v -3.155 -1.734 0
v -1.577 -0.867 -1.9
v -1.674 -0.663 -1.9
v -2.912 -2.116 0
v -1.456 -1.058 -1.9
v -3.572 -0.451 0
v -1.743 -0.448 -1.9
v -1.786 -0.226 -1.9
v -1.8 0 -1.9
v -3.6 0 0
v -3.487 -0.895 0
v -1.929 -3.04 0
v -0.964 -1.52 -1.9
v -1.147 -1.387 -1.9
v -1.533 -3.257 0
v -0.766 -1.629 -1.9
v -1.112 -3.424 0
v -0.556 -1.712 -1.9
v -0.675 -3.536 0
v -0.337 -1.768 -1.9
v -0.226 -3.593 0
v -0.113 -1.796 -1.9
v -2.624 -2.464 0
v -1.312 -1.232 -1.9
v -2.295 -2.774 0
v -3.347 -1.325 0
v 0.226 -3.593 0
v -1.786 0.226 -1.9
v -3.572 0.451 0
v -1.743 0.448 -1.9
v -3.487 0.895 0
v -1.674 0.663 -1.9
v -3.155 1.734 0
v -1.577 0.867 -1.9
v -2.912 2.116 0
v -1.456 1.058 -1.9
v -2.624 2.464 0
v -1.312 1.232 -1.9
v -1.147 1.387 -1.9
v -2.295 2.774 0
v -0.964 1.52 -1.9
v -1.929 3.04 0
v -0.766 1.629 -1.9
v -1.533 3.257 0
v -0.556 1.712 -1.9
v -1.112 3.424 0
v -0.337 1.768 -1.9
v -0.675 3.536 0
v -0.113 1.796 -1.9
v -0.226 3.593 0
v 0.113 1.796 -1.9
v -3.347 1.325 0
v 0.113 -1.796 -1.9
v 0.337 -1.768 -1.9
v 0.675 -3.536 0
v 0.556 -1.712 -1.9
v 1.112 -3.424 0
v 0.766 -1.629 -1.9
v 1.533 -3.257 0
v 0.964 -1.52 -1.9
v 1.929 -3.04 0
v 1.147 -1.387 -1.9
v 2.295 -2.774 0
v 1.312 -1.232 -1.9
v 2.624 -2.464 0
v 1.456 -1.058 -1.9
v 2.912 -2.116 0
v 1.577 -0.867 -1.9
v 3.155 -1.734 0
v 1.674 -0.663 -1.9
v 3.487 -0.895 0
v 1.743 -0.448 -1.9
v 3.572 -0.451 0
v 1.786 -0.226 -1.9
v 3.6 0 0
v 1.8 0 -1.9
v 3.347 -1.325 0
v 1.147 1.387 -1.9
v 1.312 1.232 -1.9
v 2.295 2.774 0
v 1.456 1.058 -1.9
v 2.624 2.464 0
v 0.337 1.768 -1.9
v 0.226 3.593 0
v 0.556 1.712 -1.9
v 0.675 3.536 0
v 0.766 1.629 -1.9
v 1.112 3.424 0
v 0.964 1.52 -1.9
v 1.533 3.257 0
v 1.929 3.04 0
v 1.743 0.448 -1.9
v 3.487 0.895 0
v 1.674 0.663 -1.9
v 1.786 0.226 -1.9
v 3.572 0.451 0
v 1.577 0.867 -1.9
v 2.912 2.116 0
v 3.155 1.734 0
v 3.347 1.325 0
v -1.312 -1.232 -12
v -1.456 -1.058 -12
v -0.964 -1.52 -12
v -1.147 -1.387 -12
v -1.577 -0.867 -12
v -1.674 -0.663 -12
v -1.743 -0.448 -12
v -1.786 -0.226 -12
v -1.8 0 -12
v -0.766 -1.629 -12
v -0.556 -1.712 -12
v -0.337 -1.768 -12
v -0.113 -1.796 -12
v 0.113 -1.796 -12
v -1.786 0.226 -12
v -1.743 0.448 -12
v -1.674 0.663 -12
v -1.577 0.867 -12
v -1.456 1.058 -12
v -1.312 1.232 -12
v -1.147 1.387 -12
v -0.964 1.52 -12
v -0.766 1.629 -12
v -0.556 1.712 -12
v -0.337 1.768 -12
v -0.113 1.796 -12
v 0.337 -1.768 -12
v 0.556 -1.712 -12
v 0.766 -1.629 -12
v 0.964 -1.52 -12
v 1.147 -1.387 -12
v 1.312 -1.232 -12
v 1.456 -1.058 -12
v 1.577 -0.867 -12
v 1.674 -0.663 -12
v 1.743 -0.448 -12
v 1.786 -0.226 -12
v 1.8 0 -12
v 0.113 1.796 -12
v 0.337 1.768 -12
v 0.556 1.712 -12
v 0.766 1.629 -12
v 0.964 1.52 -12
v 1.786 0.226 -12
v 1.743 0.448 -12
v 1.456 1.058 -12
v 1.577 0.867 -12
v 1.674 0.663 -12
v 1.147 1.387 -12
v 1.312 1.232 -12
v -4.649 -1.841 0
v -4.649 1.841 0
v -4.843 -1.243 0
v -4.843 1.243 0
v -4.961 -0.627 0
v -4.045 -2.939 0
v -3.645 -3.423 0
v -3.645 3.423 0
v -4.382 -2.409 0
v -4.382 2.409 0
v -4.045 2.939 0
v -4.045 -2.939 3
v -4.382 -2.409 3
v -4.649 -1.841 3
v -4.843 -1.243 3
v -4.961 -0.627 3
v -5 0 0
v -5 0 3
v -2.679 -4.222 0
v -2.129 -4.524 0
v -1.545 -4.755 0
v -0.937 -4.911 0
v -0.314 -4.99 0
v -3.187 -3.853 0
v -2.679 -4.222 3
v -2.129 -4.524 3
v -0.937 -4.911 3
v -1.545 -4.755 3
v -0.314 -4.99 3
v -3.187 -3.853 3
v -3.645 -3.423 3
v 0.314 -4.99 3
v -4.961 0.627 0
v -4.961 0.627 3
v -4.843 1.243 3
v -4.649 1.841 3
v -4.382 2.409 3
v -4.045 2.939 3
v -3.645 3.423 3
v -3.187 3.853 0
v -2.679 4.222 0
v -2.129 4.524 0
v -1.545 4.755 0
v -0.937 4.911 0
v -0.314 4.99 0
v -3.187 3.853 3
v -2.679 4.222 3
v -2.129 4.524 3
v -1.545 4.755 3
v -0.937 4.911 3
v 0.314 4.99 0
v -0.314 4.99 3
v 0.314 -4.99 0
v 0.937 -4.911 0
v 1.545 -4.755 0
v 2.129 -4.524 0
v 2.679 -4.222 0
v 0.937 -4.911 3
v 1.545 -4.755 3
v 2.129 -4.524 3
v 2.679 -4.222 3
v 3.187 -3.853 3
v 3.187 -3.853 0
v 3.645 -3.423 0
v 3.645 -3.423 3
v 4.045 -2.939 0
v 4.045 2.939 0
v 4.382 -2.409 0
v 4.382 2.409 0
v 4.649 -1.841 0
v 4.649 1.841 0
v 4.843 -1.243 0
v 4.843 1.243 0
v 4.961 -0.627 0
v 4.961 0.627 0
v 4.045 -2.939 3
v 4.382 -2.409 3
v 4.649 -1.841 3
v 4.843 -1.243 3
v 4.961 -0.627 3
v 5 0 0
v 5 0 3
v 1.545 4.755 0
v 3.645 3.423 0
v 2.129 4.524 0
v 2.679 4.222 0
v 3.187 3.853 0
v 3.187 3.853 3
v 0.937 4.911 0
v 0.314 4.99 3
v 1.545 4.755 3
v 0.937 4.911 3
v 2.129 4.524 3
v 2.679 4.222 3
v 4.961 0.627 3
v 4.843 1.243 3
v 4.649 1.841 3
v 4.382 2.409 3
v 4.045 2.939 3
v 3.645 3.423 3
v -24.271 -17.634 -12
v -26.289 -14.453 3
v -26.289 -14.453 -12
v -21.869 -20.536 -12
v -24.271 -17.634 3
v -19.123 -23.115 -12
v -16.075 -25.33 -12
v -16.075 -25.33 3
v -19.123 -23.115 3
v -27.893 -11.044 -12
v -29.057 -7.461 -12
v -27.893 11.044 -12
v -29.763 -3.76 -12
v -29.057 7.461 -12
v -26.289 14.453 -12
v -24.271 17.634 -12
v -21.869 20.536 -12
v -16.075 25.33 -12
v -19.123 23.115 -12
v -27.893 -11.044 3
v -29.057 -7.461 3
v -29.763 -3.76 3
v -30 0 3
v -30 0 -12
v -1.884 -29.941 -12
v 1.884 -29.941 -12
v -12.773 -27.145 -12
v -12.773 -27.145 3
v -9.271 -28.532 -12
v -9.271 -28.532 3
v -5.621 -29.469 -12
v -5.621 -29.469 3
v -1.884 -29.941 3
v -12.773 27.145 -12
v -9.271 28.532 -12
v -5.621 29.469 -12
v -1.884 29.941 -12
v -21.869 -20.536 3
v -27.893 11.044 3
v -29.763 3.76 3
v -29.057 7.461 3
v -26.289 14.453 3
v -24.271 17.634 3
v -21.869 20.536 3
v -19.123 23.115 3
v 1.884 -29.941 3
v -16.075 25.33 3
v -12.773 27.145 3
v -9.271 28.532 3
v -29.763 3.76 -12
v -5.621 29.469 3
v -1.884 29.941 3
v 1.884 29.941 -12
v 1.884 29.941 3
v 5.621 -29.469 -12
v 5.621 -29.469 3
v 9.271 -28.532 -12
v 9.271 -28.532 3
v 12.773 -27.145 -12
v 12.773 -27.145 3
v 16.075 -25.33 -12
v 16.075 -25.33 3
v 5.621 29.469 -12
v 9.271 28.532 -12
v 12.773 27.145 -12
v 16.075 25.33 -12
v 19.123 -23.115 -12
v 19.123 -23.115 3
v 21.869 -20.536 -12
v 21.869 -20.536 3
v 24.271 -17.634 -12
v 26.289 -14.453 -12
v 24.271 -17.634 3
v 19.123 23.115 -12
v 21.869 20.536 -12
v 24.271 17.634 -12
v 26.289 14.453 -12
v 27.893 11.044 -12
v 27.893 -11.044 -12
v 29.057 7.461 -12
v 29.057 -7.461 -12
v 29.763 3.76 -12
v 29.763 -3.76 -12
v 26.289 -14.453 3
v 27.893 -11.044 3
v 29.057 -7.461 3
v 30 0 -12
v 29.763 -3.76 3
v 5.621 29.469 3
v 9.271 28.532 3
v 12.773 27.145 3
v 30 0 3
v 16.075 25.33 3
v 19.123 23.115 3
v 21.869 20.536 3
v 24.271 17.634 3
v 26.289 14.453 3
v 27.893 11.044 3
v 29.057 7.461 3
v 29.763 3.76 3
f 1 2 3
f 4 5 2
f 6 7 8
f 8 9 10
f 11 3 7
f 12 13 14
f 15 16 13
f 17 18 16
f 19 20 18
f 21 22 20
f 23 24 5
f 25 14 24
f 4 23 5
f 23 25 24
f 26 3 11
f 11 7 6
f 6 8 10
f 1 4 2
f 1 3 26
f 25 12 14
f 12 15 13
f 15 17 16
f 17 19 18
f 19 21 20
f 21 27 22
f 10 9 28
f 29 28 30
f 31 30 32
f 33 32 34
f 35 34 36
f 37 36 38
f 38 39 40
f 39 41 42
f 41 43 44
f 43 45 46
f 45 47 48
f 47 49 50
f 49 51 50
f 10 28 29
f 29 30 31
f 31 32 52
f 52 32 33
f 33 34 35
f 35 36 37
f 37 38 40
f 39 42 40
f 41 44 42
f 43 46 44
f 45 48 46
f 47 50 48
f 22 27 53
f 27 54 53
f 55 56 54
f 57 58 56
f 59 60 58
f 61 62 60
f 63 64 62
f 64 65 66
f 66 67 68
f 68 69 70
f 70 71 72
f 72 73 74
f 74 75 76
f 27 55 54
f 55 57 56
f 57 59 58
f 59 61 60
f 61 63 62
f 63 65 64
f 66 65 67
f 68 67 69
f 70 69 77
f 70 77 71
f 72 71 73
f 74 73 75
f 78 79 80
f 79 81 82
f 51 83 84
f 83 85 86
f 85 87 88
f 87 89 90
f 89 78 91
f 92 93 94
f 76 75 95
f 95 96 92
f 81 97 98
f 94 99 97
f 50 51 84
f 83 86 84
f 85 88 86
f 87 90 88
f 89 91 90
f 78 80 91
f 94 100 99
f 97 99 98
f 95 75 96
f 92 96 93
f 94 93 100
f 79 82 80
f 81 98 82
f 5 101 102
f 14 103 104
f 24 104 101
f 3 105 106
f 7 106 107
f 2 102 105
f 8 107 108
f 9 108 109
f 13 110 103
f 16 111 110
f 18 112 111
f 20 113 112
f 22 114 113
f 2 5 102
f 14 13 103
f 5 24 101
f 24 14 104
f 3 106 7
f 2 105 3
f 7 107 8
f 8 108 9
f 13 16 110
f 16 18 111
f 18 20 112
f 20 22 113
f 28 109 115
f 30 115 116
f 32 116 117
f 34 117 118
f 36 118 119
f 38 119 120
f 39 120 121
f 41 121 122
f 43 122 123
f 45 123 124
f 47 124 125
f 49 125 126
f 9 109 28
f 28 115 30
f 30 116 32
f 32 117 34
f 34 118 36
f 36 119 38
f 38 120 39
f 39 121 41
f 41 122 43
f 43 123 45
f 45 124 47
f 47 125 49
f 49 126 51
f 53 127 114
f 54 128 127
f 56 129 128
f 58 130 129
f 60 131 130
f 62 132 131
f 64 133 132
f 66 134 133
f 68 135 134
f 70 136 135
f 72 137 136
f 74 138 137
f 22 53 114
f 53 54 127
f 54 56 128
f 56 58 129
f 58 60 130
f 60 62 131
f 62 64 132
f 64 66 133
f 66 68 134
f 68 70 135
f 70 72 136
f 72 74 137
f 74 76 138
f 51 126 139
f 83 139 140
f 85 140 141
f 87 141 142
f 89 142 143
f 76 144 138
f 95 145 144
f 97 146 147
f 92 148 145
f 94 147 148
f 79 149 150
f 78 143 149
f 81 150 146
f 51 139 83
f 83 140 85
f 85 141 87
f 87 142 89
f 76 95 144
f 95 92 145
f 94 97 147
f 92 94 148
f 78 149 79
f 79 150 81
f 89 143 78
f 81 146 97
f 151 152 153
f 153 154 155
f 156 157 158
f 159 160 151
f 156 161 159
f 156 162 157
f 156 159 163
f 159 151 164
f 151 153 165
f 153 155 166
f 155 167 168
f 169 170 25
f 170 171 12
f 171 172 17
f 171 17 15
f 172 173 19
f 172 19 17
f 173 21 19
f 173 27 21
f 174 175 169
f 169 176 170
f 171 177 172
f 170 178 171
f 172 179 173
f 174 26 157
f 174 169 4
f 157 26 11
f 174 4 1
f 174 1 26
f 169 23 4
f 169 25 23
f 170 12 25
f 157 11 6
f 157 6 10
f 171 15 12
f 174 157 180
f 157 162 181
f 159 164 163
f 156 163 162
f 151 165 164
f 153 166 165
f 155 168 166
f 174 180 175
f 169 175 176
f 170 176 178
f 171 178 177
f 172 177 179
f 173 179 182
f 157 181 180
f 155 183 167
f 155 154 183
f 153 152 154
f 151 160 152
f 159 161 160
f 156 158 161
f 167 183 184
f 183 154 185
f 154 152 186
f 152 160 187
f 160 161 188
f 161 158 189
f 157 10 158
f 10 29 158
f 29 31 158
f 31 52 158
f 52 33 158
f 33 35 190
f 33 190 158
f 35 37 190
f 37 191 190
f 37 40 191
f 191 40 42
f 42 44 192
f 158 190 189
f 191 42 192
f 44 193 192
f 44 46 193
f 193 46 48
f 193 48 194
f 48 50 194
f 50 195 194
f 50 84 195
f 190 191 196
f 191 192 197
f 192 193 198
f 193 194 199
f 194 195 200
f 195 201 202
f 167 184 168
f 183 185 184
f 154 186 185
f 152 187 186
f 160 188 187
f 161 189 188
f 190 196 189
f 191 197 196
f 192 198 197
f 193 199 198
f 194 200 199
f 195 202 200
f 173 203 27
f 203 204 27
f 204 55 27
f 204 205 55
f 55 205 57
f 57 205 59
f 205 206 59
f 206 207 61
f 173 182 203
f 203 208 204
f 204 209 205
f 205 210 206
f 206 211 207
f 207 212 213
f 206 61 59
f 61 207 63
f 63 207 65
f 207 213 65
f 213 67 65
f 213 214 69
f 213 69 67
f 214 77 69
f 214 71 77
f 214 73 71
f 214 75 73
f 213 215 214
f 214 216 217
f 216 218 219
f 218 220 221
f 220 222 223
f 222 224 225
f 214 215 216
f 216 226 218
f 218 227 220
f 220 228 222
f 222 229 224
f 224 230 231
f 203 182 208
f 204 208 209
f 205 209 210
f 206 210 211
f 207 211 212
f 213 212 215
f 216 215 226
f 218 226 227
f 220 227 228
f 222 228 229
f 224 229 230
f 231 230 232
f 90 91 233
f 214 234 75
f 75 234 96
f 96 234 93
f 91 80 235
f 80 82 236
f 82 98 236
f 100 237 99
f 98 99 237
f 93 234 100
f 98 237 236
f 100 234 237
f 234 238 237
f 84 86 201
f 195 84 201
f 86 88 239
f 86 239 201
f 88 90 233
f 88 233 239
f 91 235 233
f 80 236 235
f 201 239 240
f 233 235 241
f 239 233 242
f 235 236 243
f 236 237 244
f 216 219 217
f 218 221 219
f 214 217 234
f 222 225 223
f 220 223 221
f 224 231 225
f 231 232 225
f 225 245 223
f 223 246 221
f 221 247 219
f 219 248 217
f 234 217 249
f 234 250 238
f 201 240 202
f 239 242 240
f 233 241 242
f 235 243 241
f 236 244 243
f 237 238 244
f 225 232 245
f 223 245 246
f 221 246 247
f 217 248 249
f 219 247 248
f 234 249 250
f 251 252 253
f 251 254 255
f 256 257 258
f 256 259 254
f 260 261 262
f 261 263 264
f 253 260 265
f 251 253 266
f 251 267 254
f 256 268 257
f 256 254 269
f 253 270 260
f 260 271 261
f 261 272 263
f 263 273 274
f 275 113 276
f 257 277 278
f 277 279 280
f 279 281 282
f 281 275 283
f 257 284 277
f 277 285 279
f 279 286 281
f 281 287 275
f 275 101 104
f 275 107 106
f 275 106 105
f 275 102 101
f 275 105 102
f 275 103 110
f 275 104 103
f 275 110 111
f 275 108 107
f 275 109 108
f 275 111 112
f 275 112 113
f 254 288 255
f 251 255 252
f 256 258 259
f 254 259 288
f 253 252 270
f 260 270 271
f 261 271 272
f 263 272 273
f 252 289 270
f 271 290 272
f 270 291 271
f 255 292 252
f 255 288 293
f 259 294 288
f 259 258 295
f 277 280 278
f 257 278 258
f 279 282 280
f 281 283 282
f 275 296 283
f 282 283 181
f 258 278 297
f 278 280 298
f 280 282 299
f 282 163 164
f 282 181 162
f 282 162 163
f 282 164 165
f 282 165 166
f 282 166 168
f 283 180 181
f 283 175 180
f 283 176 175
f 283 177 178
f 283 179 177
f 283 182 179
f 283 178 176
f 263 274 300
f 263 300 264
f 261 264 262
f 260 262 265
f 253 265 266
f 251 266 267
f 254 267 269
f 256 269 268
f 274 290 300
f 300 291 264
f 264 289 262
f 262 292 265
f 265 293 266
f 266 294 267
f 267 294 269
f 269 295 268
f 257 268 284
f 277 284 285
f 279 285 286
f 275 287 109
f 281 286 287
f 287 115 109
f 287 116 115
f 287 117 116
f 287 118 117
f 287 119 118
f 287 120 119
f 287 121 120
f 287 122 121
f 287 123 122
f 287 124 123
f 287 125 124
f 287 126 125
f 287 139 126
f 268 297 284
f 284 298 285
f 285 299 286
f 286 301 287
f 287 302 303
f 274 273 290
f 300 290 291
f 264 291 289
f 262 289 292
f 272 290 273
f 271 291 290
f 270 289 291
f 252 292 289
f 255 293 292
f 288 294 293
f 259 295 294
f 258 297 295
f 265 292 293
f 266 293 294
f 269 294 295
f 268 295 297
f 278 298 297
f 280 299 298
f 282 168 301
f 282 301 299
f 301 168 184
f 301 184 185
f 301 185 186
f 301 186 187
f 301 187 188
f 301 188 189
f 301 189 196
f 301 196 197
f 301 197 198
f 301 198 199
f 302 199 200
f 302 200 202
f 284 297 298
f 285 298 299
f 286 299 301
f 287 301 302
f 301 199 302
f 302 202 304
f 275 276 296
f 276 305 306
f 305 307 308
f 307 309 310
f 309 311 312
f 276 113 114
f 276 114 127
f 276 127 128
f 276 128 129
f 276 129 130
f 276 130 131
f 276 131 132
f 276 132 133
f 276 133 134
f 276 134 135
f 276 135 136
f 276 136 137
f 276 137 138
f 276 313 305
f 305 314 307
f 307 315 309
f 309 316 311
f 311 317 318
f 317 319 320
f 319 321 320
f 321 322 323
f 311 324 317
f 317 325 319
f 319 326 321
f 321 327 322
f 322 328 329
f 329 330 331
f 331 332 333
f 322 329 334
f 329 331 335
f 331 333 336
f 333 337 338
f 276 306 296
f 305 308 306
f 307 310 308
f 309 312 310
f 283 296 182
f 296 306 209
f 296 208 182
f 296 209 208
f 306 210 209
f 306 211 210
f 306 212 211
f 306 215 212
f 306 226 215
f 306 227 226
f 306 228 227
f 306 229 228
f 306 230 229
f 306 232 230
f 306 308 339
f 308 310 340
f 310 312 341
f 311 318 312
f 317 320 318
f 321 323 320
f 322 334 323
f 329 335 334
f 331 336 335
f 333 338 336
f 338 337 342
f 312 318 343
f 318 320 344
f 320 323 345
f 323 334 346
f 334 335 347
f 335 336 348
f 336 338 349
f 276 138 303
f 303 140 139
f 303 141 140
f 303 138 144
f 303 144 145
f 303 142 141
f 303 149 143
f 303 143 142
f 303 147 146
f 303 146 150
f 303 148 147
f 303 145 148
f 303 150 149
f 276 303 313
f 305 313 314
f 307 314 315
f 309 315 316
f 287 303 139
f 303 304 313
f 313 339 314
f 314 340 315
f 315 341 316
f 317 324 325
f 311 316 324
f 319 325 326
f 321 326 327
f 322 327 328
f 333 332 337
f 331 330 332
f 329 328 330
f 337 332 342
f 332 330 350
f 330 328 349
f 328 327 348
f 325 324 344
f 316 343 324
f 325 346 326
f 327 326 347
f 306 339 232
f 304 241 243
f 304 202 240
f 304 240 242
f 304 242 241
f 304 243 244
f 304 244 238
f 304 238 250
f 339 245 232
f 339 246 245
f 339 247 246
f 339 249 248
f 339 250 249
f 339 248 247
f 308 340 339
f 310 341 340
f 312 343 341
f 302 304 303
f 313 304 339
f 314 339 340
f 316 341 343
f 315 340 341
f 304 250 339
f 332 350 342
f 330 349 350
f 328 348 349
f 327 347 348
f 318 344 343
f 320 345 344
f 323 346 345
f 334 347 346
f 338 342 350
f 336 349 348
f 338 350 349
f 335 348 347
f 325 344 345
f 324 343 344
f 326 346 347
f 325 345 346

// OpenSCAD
$fn = 50;

difference() {
	union() {
		translate(v = [0, 0, -12.0]) {
			cylinder(h = 15, r = 30.0);
		}
	}
	union() {
		translate(v = [0, 0, 0]) {
			rotate(a = [0, 0, 0]) {
				difference() {
					union() {
						translate(v = [0, 0, -15.0]) {
							cylinder(h = 15, r = 1.5);
						}
						translate(v = [0, 0, -1.9]) {
							cylinder(h = 1.9, r1 = 1.8, r2 = 3.6);
						}
						translate(v = [0, 0, -15.0]) {
							cylinder(h = 15, r = 1.8);
						}
						translate(v = [0, 0, -15.0]) {
							cylinder(h = 15, r = 1.5);
						}
					}
					union();
				}
			}
		}
		#cylinder(h = 3, r = 5.0);
	}
}
